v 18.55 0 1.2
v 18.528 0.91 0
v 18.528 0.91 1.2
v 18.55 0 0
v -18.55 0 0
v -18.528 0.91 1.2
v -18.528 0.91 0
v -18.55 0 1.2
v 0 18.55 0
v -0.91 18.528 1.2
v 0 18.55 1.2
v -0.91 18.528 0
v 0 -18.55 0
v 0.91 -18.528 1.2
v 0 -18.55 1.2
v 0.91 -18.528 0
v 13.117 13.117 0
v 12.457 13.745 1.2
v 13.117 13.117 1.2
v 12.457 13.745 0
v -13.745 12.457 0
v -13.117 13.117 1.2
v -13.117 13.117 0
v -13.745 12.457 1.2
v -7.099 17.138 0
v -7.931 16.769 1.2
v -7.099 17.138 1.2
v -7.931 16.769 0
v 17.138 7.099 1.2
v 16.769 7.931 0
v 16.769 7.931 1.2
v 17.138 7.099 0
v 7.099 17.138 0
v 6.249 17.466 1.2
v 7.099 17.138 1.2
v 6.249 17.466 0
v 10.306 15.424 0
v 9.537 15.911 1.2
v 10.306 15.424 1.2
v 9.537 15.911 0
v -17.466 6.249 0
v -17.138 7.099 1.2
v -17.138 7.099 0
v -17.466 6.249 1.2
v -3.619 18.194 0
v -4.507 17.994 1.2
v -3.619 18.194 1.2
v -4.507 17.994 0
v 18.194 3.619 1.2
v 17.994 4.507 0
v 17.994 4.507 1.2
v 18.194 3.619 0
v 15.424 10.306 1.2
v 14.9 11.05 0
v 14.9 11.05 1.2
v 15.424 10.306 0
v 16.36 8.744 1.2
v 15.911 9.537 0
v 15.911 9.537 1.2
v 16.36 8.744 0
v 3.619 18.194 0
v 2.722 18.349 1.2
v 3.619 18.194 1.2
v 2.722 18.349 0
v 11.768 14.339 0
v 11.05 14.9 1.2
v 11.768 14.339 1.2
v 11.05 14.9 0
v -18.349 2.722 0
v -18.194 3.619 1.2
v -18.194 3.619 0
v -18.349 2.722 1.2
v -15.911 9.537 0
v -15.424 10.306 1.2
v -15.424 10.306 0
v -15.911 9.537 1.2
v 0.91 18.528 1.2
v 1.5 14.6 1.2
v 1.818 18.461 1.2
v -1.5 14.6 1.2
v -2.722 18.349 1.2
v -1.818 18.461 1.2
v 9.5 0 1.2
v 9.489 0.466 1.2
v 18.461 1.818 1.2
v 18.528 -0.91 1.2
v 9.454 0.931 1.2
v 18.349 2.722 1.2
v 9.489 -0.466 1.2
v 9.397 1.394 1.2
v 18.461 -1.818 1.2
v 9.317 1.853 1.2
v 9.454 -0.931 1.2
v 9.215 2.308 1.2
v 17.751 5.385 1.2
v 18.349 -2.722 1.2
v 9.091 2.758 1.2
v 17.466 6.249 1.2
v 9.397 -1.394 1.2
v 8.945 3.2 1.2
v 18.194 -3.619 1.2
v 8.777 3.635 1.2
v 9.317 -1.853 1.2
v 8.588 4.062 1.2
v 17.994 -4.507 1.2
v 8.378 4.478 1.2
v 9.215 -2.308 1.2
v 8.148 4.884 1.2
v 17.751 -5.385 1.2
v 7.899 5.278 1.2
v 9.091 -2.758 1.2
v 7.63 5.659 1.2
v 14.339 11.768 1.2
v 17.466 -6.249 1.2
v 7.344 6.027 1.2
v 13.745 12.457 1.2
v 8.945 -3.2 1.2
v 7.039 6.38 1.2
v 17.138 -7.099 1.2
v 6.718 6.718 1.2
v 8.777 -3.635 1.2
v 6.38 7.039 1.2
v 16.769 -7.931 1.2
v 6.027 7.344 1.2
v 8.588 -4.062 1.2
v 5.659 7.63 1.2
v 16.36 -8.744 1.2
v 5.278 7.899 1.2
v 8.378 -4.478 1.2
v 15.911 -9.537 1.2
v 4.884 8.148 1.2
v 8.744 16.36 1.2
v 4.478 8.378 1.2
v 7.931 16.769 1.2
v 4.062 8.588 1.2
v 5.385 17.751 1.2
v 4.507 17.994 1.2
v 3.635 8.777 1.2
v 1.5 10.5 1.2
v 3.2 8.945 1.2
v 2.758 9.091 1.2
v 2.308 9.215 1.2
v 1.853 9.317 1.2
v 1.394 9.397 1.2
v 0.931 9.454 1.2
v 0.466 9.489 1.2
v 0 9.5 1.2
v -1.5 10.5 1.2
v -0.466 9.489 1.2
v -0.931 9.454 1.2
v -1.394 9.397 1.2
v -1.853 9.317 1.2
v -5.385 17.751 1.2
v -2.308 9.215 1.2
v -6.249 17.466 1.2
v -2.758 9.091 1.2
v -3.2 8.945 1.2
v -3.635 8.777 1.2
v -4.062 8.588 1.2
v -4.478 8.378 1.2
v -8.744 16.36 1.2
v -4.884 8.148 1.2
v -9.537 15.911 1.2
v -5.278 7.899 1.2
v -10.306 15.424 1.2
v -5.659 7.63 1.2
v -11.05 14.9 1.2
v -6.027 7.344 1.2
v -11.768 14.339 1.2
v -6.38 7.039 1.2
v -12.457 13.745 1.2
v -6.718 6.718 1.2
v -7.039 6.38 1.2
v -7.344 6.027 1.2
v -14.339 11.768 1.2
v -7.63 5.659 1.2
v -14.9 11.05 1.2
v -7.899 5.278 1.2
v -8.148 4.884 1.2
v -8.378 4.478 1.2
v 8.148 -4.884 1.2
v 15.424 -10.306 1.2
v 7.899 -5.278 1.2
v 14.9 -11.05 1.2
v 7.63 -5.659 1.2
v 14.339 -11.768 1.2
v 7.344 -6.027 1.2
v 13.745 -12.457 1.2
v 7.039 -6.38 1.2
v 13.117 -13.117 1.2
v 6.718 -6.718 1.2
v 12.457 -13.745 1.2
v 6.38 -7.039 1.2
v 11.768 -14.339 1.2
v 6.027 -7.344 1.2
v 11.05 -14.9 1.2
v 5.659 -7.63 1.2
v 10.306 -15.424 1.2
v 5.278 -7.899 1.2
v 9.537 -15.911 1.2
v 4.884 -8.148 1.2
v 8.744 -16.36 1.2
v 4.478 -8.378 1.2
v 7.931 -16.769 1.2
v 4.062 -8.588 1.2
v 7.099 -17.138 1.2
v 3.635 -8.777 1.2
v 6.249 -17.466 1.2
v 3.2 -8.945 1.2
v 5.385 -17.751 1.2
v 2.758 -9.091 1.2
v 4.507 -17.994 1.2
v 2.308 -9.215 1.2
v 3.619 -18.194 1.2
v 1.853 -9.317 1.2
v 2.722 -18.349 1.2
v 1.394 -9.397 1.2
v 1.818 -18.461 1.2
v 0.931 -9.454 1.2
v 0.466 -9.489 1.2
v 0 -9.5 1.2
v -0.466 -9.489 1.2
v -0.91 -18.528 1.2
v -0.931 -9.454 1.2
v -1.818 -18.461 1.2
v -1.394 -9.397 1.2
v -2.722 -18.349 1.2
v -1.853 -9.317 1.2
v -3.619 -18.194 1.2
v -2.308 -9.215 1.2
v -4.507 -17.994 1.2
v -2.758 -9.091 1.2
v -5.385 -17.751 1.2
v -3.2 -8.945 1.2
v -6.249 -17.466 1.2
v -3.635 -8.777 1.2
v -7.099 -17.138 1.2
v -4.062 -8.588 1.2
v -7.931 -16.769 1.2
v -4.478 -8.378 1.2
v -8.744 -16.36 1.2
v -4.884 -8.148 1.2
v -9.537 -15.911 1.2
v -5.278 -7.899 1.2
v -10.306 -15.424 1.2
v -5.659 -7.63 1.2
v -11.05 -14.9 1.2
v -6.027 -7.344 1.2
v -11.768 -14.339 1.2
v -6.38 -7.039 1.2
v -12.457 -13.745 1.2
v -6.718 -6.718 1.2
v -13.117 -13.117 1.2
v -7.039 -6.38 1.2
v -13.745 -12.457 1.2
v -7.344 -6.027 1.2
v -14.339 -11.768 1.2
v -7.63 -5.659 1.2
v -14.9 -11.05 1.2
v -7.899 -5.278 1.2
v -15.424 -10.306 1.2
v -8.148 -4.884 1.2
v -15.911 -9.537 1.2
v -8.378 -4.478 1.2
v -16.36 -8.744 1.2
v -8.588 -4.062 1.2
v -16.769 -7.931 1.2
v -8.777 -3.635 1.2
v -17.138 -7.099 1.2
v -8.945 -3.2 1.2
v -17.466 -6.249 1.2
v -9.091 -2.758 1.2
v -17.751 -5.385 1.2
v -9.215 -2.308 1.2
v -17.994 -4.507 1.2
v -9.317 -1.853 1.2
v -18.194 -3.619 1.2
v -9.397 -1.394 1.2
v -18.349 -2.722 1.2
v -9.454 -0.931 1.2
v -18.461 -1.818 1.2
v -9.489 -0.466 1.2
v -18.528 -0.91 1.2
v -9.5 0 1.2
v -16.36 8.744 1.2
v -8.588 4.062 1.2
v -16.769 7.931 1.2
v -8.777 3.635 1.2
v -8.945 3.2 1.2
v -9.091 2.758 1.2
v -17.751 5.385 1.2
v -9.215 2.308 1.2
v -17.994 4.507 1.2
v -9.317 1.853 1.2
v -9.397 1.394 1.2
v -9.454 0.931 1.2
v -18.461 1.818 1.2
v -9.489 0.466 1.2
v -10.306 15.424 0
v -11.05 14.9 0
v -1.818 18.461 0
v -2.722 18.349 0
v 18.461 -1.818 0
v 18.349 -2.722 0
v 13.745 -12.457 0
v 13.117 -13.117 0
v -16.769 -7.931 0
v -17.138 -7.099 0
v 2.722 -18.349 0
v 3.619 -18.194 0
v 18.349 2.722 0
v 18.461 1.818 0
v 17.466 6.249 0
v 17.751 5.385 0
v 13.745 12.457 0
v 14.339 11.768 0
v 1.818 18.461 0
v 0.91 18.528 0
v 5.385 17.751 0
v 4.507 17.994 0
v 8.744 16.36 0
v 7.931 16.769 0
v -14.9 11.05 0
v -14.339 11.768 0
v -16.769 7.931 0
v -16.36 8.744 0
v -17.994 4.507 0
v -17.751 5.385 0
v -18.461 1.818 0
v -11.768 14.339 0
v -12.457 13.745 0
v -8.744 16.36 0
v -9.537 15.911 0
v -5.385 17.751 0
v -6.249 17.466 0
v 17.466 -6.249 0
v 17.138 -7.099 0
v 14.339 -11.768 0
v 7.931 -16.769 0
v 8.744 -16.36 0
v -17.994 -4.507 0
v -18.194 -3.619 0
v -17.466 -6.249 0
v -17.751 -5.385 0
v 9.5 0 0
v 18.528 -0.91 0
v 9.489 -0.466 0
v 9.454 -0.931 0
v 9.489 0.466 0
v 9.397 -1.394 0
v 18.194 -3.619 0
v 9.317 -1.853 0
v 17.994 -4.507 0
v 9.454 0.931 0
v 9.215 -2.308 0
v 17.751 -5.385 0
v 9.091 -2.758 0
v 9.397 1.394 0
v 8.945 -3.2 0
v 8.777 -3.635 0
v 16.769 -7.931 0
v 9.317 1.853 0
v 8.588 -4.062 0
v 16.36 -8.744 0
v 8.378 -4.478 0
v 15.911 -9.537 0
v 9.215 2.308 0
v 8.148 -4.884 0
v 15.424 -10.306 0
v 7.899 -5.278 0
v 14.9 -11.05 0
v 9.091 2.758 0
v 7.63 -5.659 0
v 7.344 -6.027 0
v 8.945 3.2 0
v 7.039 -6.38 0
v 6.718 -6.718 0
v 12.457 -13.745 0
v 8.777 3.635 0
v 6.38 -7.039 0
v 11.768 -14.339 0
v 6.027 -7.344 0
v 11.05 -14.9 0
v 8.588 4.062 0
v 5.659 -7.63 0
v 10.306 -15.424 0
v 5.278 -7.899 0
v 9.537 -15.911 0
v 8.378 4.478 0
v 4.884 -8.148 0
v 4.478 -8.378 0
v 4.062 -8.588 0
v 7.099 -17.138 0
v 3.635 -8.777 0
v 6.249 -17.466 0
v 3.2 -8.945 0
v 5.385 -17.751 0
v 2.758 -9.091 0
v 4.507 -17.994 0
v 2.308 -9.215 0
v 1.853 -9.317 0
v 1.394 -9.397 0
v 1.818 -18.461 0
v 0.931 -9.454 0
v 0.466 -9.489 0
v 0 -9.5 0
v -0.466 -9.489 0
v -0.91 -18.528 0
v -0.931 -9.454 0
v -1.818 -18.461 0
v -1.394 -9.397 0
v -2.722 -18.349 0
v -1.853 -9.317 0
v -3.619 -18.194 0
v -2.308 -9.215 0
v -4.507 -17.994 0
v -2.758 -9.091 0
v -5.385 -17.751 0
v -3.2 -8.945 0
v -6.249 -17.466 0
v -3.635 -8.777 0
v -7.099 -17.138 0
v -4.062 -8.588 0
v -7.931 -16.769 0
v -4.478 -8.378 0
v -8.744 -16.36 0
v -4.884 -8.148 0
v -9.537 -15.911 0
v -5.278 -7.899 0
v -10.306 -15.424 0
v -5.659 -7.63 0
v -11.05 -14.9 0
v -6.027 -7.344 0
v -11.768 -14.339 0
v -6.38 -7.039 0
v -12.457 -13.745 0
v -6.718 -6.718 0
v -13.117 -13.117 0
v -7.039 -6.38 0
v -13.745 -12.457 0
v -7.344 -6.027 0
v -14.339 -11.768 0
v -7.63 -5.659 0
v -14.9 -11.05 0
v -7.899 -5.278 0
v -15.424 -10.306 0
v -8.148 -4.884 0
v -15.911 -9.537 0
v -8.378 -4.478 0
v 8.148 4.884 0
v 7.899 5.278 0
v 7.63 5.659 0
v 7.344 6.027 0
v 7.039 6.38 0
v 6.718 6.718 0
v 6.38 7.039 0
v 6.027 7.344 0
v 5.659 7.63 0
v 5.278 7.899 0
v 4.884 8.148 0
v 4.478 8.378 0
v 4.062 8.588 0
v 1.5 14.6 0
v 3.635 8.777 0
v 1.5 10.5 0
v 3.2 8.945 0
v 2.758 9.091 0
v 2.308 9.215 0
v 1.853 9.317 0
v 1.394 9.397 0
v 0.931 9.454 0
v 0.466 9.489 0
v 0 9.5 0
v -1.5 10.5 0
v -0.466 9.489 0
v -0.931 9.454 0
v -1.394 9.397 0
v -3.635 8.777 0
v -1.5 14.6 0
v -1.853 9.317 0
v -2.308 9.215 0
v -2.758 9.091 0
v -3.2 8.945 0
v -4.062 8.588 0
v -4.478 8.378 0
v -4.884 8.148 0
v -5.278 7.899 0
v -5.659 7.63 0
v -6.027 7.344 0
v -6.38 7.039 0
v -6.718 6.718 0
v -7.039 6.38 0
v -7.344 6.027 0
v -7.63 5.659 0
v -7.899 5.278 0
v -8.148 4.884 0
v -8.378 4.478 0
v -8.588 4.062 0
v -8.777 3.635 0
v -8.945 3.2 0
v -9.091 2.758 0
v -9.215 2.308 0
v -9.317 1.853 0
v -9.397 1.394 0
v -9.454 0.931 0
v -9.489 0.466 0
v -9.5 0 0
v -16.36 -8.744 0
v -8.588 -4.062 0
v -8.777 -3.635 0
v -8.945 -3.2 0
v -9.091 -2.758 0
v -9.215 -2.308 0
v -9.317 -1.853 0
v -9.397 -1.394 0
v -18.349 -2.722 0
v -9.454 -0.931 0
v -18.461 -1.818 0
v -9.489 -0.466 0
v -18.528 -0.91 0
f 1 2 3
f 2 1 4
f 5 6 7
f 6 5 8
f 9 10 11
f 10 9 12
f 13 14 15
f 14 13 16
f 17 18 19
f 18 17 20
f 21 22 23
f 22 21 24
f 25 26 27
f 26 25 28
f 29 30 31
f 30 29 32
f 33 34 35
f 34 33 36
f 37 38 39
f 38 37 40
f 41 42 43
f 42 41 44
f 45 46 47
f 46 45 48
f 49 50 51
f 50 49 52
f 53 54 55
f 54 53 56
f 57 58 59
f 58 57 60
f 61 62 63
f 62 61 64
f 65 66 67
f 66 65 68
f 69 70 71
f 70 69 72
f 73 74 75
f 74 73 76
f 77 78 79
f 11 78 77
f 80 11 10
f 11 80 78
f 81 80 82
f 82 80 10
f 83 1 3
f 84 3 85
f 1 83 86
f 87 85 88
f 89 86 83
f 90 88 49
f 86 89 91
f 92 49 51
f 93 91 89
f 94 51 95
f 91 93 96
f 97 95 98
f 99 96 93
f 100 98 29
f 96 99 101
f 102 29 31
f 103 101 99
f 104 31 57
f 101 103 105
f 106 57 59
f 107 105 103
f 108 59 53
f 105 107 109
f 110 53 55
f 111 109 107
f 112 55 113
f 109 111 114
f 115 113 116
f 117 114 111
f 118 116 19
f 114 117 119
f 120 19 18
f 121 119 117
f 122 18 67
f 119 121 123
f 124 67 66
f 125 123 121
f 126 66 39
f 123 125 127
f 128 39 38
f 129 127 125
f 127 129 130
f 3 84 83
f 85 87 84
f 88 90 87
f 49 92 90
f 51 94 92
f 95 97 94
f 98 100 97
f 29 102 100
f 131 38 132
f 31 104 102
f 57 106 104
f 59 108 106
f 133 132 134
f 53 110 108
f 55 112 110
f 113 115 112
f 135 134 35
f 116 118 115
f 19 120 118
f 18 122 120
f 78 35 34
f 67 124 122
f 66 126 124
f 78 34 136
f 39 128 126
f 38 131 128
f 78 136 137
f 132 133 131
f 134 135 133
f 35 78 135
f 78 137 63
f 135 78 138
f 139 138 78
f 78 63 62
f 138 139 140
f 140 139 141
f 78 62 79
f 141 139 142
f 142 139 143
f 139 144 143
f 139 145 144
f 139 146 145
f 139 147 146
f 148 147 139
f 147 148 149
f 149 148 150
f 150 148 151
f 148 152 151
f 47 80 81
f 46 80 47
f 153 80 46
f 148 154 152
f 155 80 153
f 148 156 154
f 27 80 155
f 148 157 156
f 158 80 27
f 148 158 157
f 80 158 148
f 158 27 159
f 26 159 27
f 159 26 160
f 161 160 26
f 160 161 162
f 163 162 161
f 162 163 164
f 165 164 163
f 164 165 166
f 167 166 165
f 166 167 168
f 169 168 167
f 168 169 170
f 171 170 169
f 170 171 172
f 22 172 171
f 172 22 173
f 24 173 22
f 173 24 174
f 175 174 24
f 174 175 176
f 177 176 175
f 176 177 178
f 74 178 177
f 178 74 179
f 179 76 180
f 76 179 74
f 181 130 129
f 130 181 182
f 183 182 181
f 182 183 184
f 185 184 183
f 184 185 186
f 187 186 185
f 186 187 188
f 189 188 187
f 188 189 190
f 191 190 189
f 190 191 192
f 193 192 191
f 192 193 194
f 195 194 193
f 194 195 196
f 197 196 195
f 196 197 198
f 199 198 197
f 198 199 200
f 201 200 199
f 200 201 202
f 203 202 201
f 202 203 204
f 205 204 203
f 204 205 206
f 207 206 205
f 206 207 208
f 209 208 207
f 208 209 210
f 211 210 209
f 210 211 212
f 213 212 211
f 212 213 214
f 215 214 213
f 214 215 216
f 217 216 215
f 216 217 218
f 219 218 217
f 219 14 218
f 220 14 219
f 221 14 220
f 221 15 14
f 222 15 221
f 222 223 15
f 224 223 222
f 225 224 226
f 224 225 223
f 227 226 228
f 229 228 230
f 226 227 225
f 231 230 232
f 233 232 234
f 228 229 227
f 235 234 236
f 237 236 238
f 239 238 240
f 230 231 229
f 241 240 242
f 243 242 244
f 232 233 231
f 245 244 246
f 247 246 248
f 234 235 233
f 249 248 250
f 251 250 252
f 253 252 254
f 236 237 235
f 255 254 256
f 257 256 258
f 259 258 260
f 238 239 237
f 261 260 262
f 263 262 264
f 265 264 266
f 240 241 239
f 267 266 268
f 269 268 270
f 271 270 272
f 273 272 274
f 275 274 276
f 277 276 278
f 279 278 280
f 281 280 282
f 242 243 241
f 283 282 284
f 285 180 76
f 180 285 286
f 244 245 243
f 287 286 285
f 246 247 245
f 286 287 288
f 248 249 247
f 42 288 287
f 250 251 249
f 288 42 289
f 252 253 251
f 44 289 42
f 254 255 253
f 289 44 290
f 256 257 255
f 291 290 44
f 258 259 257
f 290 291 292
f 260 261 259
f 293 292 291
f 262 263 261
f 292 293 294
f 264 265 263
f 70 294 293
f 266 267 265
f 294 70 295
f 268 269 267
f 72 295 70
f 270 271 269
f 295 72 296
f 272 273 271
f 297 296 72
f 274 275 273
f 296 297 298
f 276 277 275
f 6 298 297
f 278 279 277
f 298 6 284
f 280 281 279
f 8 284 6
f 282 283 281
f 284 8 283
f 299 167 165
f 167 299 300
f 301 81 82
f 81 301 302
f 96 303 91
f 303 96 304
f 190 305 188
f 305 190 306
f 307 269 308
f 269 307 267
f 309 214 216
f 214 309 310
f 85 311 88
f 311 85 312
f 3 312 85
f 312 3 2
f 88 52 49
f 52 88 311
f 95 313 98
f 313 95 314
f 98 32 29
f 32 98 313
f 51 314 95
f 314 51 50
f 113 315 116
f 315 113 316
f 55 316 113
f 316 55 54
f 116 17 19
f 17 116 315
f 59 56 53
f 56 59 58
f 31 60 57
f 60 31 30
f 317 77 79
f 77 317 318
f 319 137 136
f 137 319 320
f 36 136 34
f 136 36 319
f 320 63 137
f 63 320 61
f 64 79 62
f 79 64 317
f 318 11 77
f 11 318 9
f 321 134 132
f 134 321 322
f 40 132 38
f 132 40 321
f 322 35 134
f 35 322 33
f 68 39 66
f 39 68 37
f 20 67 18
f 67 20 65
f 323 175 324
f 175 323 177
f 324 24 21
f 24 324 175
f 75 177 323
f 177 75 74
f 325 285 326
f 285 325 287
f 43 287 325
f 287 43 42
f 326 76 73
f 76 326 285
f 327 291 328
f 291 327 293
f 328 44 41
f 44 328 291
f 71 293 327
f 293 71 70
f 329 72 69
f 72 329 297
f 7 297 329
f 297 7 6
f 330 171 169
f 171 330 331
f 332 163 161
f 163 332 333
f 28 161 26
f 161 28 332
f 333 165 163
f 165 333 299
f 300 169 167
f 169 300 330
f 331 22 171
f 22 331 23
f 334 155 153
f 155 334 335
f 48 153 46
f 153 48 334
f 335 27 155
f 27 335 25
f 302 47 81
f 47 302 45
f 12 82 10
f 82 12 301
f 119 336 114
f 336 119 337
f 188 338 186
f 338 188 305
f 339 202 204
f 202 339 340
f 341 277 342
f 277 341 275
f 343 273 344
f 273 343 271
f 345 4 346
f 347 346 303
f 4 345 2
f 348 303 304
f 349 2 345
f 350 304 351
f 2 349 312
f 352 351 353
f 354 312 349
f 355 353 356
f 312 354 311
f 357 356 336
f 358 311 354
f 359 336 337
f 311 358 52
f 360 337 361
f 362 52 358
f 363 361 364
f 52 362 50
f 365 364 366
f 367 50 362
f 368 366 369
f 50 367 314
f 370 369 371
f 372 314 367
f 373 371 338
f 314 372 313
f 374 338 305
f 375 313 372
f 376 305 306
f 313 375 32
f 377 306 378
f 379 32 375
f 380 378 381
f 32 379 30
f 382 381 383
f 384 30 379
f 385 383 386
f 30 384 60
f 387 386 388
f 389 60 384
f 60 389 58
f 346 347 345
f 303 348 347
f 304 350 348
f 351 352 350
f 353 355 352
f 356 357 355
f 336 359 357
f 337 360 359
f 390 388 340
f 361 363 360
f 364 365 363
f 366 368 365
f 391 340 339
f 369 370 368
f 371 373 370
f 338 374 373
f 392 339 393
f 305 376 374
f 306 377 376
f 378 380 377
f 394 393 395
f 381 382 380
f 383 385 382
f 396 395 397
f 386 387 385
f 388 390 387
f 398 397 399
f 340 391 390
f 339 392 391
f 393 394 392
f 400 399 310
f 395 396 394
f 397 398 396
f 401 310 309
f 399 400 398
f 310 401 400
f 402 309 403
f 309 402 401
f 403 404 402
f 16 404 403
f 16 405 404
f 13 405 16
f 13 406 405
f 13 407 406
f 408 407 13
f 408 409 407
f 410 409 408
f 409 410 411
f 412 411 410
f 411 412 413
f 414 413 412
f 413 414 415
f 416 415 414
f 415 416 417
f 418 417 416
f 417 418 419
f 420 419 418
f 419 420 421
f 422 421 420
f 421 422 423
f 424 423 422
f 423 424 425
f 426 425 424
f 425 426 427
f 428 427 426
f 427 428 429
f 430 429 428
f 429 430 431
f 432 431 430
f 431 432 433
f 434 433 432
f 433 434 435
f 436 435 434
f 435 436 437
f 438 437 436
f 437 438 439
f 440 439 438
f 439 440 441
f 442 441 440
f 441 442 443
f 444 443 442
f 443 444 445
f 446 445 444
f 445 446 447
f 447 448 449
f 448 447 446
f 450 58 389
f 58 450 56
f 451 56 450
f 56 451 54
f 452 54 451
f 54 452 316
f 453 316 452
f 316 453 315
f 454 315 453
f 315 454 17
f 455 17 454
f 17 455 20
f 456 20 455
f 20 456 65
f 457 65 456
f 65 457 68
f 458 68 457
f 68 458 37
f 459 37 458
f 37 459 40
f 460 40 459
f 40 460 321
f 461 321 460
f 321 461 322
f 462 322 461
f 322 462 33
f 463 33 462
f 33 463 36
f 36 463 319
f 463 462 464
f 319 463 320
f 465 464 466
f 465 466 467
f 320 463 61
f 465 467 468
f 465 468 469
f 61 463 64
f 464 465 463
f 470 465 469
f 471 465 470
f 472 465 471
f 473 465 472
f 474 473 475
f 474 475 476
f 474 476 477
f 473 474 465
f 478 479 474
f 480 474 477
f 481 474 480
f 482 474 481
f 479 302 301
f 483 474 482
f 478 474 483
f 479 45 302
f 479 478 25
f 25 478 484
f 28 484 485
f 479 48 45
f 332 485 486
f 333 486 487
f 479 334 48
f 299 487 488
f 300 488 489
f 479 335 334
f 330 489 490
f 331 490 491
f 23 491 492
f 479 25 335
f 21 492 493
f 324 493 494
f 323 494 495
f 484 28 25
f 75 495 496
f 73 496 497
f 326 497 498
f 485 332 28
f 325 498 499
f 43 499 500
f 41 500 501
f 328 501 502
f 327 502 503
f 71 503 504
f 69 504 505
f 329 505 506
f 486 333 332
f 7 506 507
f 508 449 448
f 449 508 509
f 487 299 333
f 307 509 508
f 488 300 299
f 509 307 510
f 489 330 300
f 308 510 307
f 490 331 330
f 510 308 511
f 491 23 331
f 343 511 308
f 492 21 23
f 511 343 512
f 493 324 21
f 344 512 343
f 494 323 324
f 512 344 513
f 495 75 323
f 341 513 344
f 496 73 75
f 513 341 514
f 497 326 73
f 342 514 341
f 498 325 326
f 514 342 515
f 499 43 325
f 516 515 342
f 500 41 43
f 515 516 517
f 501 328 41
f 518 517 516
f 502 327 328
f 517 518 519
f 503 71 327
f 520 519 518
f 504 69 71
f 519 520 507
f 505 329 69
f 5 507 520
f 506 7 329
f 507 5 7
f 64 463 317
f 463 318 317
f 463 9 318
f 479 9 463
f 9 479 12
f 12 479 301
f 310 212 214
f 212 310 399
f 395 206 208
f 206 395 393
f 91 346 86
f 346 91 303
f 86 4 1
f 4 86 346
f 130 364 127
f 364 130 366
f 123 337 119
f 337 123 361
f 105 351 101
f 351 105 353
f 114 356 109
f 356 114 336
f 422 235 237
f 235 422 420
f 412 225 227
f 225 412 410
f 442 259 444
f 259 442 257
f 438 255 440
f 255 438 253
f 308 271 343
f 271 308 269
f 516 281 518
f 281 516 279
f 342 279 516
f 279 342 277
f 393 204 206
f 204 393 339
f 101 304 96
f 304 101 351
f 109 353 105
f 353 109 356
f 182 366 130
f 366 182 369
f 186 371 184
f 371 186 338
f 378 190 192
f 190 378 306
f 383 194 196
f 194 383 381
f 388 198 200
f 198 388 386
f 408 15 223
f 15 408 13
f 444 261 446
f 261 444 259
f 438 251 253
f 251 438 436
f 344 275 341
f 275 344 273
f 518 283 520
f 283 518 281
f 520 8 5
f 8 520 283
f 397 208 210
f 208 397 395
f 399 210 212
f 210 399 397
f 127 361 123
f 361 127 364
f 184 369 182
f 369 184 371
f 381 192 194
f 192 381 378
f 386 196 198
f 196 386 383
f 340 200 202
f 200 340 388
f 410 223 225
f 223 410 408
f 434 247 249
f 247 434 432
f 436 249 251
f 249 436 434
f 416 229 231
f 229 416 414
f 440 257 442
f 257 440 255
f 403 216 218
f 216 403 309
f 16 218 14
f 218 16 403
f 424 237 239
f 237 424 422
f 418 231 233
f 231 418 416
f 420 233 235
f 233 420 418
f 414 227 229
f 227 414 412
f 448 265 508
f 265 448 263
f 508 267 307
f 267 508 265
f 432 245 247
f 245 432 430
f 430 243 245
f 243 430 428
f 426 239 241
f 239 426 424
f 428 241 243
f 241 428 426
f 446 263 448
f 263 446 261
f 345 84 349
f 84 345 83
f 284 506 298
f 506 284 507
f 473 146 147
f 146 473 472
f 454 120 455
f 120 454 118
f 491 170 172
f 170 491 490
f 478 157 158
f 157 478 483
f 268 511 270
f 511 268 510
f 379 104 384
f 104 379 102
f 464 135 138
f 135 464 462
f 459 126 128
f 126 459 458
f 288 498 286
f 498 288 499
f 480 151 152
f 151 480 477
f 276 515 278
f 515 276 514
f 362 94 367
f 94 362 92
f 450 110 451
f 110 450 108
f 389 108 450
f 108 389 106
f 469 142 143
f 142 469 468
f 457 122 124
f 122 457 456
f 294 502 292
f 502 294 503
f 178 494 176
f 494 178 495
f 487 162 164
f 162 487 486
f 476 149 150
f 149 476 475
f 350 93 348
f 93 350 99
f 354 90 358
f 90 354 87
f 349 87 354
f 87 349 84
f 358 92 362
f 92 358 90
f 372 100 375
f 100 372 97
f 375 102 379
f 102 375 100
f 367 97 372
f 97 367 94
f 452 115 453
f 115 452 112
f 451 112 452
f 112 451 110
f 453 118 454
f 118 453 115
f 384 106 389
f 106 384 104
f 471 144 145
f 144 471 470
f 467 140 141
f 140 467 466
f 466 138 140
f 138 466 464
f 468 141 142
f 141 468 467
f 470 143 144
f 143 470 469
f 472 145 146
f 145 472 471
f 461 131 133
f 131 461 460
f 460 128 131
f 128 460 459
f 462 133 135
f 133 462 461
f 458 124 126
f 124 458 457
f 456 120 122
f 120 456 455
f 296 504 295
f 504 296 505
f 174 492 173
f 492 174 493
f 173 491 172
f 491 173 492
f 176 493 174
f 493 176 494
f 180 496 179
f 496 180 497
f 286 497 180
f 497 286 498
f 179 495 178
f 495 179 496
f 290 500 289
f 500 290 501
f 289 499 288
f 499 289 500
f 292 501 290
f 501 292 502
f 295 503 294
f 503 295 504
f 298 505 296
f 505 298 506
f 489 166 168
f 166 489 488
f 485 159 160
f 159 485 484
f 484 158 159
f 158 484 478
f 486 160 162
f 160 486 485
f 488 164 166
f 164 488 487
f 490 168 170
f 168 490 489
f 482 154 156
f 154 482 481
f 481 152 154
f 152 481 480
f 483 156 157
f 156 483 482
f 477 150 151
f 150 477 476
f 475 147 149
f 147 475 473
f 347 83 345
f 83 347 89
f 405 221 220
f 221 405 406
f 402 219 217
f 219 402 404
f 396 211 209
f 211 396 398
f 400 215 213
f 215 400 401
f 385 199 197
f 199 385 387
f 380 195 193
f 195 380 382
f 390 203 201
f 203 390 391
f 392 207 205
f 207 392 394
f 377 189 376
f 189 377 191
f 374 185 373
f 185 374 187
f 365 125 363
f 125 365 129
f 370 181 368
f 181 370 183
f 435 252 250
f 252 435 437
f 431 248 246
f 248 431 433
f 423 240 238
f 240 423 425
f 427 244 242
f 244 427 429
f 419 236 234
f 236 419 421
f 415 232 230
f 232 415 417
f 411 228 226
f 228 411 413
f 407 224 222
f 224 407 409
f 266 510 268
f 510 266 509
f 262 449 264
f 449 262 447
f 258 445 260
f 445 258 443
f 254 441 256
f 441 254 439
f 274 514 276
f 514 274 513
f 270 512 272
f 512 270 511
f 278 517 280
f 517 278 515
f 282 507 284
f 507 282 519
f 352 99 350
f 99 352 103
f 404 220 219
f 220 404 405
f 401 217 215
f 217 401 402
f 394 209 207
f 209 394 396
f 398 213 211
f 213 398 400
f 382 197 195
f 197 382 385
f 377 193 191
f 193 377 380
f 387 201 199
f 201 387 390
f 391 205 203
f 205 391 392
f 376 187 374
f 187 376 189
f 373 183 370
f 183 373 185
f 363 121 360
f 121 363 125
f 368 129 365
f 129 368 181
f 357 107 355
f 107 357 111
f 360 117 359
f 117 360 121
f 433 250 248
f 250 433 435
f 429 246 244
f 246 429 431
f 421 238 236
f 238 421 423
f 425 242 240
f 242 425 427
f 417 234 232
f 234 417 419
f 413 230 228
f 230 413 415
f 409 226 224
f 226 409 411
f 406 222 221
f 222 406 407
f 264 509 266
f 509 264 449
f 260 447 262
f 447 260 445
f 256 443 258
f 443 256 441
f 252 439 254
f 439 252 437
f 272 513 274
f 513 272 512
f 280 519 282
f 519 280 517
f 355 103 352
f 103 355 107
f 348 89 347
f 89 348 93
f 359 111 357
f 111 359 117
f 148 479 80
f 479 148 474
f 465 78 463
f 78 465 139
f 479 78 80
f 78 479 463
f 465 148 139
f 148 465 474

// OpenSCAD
/*
  Elna Supermatic Universal Bottom Ring
  Fits all cams (01-34). Print flat without supports.
*/

include <_elna_measured_common.scad>;

universal_ring();
